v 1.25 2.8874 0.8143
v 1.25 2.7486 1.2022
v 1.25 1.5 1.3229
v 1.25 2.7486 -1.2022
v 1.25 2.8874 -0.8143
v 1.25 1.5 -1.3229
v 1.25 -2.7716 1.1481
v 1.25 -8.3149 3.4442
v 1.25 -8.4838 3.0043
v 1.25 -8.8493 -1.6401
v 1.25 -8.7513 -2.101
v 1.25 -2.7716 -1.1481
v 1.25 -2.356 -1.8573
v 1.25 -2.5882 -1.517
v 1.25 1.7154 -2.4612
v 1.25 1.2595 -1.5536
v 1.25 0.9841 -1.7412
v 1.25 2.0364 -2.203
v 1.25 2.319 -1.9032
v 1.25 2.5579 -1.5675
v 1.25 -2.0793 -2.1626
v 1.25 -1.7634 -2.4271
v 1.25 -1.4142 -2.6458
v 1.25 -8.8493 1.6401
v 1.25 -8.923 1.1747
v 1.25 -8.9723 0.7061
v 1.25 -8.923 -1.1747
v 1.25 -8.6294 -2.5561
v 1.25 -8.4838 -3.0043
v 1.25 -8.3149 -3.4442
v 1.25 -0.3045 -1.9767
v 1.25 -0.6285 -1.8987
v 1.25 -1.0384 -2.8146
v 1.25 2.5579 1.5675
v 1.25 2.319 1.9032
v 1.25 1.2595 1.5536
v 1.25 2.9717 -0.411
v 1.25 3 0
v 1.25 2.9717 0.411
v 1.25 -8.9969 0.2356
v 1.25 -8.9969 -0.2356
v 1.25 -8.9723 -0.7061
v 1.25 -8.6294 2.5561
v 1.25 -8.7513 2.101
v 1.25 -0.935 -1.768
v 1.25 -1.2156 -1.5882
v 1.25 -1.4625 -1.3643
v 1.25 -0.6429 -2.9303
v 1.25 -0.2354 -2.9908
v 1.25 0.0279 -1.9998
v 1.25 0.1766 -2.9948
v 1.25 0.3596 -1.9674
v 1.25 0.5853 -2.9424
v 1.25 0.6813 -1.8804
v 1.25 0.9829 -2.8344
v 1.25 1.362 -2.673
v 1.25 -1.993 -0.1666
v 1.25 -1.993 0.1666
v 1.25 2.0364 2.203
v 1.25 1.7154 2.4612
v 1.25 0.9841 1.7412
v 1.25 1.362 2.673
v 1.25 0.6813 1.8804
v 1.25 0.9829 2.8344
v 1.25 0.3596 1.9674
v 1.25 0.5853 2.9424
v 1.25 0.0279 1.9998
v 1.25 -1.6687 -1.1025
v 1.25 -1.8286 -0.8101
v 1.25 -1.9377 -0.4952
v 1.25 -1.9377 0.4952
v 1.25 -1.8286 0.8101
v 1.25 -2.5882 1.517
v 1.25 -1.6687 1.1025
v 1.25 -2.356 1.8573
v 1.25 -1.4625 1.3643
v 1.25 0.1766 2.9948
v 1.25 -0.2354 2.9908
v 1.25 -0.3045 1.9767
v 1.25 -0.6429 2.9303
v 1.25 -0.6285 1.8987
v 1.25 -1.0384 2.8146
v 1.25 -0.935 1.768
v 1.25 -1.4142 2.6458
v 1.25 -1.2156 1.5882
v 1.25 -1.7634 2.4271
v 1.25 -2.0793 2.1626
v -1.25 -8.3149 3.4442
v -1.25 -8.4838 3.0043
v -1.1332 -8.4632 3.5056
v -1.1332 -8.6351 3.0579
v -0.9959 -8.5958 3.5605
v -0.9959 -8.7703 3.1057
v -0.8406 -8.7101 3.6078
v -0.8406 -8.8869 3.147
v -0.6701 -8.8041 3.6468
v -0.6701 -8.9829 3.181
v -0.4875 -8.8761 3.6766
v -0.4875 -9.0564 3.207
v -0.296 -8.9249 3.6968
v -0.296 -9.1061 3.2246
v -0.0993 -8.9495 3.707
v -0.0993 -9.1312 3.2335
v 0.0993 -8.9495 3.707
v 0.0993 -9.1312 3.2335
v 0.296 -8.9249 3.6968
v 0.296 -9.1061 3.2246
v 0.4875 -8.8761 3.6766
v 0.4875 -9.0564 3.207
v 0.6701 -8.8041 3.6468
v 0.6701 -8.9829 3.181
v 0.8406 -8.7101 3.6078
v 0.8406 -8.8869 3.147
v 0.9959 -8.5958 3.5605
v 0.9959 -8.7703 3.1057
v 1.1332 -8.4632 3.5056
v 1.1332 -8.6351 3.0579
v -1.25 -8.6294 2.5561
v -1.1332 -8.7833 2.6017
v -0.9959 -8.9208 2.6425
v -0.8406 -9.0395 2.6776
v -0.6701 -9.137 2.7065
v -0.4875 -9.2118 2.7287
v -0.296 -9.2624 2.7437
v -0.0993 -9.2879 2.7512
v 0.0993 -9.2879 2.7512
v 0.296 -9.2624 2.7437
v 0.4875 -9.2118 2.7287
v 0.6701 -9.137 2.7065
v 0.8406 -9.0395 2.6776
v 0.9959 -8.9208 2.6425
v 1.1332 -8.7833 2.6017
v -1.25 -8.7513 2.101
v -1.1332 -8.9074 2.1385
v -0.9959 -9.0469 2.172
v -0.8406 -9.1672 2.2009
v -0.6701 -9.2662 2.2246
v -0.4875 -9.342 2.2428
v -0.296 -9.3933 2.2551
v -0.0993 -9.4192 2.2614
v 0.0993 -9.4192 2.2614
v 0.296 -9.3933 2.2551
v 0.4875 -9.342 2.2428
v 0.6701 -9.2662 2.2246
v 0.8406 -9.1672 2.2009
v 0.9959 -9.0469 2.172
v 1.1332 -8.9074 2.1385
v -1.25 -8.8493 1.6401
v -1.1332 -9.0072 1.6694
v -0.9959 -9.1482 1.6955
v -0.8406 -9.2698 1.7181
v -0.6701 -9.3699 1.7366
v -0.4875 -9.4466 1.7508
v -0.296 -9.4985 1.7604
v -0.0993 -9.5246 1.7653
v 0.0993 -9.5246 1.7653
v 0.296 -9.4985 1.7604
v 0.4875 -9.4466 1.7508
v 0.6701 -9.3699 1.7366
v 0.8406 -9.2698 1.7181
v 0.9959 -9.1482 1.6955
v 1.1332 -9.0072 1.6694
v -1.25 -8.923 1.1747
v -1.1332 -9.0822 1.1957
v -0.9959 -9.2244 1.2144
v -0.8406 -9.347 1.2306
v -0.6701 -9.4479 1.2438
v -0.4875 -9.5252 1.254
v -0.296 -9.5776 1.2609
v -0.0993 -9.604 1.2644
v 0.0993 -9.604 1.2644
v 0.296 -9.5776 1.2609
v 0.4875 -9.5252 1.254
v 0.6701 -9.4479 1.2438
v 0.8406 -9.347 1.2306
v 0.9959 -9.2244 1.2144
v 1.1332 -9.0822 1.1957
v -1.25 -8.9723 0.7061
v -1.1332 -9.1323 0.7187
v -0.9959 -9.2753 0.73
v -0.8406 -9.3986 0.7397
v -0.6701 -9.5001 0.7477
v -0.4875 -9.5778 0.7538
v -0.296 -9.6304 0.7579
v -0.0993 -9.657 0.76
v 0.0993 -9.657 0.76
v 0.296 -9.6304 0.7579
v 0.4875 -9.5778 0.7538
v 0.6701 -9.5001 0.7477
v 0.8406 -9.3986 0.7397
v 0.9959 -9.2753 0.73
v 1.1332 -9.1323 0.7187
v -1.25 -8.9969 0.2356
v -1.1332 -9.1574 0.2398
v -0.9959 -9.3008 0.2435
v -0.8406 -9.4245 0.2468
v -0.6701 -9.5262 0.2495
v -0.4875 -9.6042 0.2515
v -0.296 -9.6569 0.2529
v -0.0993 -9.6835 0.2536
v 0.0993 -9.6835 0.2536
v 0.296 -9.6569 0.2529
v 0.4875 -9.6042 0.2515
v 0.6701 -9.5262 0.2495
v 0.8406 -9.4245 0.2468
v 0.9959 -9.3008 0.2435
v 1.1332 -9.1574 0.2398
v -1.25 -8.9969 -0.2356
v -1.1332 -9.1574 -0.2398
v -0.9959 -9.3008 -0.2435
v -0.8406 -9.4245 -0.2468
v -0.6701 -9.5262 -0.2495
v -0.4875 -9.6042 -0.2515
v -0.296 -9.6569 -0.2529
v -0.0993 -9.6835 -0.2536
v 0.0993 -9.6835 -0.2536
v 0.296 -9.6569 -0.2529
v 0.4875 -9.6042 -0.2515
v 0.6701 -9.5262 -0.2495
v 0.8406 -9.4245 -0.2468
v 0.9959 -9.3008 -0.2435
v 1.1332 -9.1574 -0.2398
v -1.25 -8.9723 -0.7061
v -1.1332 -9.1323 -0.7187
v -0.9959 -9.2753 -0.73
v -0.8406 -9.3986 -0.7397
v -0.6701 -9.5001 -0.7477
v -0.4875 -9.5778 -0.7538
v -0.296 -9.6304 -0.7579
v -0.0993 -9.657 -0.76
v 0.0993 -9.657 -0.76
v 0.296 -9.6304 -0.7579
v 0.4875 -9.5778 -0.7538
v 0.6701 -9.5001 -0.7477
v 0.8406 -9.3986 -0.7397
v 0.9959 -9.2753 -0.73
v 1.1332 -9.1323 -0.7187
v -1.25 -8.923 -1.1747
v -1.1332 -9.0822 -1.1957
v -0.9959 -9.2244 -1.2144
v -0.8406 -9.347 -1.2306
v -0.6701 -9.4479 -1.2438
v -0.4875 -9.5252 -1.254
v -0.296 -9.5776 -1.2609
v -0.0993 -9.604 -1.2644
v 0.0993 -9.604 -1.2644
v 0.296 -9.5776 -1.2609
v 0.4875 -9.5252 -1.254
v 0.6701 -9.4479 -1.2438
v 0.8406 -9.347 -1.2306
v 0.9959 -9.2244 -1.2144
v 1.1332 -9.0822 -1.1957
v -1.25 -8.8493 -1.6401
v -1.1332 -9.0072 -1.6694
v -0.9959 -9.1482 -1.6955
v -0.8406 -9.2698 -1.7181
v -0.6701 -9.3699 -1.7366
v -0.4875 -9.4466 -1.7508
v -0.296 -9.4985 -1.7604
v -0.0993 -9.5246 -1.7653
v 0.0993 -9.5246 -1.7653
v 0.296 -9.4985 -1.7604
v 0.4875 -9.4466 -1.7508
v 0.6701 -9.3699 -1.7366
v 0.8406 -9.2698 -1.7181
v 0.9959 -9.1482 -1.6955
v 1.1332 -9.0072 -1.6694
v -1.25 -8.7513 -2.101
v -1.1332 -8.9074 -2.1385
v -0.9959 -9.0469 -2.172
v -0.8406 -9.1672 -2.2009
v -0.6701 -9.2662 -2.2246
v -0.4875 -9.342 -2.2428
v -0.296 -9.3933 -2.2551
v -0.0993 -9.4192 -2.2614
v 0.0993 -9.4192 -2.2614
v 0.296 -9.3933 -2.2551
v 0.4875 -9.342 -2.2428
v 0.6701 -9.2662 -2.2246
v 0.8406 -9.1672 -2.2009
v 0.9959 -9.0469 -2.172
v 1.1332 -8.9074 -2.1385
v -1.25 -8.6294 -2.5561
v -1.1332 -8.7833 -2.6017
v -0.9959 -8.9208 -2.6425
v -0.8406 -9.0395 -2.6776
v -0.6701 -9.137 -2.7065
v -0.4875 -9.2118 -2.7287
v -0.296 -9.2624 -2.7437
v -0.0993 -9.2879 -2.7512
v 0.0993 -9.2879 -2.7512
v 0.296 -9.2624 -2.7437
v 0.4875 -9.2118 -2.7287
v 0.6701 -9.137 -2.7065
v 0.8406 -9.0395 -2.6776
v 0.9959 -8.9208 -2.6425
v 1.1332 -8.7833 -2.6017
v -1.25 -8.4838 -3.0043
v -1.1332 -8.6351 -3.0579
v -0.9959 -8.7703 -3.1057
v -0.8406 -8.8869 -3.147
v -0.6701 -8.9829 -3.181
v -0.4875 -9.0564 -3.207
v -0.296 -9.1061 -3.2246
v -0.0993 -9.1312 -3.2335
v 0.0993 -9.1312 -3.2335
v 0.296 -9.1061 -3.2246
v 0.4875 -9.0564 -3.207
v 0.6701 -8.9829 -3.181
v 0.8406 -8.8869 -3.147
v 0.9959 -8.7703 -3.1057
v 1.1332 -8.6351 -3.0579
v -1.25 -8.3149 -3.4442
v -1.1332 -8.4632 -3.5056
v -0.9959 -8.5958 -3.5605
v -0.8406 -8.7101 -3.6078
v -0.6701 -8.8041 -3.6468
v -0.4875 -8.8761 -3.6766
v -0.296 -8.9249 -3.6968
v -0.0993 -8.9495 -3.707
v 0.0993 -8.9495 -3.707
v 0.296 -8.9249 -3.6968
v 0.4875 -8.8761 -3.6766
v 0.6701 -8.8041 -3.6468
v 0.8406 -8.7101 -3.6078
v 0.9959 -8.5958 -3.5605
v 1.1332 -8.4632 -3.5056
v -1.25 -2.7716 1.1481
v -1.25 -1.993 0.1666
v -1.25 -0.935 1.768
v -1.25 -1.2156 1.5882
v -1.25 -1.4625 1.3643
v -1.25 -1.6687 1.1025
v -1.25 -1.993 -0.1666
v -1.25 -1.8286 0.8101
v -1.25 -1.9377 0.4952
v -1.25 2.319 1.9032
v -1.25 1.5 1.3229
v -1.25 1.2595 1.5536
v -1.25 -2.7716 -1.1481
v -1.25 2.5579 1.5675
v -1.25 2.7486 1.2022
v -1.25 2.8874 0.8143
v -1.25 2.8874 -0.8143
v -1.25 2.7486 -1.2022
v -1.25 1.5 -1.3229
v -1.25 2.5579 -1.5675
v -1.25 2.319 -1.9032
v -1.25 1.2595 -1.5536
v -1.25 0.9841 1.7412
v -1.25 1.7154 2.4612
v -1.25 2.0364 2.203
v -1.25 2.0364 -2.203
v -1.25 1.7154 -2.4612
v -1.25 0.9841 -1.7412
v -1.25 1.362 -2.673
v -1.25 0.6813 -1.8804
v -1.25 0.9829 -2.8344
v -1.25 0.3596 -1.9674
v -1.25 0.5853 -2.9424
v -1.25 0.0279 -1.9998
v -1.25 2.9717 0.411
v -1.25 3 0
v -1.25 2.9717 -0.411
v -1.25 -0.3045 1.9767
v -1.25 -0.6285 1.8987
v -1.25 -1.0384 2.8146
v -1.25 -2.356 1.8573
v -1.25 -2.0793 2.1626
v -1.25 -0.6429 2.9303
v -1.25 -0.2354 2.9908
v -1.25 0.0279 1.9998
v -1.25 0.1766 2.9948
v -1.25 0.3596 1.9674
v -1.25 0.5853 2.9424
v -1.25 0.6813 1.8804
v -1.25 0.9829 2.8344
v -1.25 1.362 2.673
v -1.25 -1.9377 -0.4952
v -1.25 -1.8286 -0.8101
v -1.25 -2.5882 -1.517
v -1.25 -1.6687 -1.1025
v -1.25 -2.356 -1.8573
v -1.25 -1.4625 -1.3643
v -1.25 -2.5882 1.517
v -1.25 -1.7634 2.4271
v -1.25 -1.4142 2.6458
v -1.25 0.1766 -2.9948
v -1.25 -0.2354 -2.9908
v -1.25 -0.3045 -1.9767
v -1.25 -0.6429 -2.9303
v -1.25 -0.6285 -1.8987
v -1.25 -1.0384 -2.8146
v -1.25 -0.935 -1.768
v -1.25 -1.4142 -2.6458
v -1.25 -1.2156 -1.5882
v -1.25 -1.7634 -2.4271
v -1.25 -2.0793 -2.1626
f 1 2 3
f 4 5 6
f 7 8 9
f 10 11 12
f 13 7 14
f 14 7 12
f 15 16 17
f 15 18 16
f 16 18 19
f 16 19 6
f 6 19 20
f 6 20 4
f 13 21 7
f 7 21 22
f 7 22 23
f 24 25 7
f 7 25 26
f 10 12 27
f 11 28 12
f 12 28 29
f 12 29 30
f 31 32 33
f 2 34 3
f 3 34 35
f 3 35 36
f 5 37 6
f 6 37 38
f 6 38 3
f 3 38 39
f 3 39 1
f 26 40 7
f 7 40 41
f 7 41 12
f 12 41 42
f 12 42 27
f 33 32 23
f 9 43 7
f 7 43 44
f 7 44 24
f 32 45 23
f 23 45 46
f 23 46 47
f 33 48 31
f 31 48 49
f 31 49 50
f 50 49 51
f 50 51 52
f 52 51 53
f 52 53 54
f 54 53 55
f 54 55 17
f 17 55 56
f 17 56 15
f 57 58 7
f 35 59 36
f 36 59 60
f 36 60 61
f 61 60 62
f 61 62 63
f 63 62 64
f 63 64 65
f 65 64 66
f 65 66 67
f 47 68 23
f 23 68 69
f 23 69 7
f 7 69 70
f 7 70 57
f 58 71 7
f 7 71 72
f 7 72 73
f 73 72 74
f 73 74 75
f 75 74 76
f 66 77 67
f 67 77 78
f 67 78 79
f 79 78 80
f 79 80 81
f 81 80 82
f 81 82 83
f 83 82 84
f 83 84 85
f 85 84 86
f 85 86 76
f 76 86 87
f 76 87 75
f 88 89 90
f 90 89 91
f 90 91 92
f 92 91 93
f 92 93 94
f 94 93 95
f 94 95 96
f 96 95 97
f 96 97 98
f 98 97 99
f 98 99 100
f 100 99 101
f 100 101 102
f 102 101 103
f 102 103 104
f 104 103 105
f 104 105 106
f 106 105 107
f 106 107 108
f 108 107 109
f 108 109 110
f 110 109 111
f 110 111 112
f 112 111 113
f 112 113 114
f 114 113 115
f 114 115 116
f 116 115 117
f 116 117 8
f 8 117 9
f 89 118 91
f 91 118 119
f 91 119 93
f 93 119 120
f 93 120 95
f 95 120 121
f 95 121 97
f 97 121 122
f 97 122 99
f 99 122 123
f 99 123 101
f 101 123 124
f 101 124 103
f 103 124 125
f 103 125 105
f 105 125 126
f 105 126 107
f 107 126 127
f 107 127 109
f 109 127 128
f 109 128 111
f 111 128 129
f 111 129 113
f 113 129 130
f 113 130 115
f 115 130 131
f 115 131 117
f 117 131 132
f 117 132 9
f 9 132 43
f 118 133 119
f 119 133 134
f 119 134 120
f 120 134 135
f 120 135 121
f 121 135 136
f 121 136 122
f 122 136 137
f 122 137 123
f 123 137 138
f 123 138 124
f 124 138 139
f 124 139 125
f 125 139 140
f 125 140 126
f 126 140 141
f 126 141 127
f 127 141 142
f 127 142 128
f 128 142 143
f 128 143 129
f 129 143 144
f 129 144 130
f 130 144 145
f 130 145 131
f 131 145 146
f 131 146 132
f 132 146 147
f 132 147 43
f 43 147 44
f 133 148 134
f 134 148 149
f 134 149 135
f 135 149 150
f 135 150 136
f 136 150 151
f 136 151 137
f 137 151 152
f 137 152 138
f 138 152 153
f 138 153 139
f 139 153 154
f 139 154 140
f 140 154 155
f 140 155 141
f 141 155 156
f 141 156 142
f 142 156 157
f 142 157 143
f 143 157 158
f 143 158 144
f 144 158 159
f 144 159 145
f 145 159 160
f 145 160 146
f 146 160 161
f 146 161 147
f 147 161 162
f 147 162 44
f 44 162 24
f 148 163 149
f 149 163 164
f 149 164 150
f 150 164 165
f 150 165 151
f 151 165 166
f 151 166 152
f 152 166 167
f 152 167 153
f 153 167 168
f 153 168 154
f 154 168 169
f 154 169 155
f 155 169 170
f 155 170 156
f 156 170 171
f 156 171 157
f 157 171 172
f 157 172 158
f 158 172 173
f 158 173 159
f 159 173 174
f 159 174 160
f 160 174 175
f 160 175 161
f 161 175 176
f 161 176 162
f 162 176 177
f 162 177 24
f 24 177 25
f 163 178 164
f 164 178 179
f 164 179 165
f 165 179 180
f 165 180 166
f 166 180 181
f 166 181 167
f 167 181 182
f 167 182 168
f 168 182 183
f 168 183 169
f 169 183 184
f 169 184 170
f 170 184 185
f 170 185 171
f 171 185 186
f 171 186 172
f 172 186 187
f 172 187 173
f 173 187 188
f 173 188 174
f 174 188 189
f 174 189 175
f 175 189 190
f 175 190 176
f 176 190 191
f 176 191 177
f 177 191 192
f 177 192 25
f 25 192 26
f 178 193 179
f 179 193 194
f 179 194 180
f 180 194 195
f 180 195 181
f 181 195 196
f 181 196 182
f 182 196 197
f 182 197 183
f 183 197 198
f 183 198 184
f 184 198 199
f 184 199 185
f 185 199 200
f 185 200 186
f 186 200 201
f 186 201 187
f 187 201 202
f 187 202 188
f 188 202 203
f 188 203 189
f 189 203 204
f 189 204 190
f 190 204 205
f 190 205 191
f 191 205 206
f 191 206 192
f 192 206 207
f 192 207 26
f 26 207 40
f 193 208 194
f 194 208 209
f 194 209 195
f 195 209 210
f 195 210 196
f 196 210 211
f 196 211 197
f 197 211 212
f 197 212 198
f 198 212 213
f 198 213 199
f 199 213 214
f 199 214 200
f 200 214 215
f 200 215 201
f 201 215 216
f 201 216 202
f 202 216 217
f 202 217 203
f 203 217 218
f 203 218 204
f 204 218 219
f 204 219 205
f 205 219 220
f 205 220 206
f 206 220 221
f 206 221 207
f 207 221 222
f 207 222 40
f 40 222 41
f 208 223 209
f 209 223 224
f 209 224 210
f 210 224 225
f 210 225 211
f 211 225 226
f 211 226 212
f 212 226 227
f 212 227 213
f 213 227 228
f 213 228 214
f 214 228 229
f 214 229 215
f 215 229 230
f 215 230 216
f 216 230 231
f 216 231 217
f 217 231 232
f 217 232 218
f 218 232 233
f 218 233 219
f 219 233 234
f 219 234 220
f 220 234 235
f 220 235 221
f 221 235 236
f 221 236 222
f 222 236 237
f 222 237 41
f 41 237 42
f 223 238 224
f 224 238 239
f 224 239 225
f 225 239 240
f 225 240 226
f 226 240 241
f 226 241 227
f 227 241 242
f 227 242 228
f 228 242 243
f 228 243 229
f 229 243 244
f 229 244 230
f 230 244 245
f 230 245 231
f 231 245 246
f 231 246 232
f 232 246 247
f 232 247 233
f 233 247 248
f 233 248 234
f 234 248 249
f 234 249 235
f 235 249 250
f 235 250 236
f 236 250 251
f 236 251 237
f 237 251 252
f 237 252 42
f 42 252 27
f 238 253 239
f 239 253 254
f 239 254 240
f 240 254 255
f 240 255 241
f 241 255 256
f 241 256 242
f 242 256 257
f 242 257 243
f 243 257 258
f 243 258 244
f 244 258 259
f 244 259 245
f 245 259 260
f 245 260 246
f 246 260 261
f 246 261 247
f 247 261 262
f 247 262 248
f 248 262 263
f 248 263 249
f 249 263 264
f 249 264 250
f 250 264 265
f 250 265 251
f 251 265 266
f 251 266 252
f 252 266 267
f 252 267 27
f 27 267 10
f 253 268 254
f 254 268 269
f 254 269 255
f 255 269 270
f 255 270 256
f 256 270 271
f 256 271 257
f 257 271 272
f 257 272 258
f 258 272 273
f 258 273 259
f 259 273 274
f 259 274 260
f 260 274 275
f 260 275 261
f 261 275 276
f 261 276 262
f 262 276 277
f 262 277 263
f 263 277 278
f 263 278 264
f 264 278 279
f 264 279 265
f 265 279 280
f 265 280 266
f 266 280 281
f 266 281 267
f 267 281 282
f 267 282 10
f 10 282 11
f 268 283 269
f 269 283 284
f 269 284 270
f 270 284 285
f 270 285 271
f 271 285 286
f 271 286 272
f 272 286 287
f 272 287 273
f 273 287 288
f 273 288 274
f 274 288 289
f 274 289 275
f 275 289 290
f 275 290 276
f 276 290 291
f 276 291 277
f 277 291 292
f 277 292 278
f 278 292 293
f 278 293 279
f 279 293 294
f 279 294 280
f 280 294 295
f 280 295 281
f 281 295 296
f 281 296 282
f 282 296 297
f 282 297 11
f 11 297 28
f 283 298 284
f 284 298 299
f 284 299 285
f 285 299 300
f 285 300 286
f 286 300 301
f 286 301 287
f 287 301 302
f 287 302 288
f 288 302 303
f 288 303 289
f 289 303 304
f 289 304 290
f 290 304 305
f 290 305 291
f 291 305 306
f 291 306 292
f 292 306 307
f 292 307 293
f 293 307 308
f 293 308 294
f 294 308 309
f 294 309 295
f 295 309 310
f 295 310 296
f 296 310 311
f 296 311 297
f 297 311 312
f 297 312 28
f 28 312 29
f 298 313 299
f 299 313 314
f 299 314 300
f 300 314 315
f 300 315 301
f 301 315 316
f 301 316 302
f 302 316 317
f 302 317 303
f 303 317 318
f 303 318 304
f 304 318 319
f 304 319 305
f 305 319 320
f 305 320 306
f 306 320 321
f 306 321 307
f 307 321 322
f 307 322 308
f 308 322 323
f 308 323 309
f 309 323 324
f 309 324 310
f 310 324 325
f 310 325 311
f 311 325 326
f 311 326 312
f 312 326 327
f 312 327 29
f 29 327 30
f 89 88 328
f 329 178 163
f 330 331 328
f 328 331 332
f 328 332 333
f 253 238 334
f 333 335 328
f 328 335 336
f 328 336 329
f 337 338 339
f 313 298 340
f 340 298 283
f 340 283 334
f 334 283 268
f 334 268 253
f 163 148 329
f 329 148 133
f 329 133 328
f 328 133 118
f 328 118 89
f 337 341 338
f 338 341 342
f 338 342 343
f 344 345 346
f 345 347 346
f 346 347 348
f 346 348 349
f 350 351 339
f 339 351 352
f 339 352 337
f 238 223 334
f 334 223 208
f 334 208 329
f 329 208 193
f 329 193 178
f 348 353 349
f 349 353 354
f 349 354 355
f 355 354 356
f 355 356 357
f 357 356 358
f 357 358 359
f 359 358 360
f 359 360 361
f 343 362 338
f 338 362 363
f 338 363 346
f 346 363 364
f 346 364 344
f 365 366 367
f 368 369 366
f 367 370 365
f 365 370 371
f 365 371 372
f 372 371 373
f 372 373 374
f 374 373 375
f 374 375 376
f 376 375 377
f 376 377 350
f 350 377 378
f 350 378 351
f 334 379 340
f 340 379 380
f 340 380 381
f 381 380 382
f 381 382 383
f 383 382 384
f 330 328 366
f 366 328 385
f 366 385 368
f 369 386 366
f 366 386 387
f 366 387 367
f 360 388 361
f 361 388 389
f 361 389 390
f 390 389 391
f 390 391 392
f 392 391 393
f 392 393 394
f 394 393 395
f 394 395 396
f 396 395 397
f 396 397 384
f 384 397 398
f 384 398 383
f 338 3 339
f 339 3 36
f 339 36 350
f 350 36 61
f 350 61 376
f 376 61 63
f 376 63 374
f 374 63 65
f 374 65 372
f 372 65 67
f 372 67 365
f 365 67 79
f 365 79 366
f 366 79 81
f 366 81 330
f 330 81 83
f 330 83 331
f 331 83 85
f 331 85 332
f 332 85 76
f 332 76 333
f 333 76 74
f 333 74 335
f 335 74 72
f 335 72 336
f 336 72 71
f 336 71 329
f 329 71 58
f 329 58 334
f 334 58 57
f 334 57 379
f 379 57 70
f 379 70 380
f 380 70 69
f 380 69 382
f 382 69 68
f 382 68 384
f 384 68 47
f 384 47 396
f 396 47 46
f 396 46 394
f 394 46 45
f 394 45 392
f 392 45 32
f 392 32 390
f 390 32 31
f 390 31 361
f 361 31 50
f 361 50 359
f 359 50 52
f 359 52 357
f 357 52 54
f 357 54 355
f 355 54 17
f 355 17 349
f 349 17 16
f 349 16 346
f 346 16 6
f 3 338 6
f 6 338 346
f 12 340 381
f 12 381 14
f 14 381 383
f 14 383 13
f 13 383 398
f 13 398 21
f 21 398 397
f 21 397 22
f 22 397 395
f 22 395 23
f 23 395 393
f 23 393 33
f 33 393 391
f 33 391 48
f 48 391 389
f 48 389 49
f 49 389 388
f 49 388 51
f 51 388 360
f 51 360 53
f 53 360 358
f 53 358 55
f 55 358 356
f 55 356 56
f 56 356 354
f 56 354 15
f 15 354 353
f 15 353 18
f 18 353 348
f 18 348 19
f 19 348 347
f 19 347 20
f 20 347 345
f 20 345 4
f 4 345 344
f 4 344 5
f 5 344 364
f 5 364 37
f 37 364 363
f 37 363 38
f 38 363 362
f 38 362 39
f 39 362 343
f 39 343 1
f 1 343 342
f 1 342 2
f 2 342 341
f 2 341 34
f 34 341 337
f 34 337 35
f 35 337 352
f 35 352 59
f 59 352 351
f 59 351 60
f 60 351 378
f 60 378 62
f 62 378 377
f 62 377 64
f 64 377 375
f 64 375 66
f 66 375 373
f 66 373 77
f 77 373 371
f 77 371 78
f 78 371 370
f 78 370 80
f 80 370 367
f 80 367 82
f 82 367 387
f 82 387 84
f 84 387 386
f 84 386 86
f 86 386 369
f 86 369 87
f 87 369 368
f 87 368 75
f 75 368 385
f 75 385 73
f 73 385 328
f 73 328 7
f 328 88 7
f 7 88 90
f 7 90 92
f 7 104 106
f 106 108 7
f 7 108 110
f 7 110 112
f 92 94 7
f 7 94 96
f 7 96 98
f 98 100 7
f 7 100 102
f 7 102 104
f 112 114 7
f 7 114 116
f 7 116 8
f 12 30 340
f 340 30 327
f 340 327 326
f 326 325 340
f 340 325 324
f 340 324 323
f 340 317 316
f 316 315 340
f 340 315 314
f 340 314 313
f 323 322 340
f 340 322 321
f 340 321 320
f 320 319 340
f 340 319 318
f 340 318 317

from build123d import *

# Parameters (mm, degrees)
CUT_EXTRUDE1_DEPTH           = 10
CUT_REVOLVE1_ANGLE           = 157.5
CUT_REVOLVE1_OTHER_WAY_ANGLE = 157.5


with BuildPart() as part:
    # Sketch3 → Revolve1 (revolve)
    with BuildSketch(Plane.XY, mode=Mode.PRIVATE) as revolve1_sk:
        with BuildLine():
            Line((1.25, 0), (1.25, 9))
            ThreePointArc((1.25, 9), (0, 9.690197618), (-1.25, 9))
            Line((-1.25, 9), (-1.25, 0))
            Line((-1.25, 0), (1.25, 0))
        make_face()
    revolve(revolve1_sk.sketch.rotate(Axis((-1.25, 0, 0), (1, 0, 0)), 180), axis=Axis((-1.25, 0, 0), (1, 0, 0)))

    # Sketch4 → Cut-Extrude1 (cut)
    # profile 1 of 2: a face of its own
    with BuildSketch(Plane(origin=(1.25, 0, 0), x_dir=(0, 0, -1), z_dir=(1, 0, 0))):
        with BuildLine():
            Line((1.322875656, 1.5), (-1.322875656, 1.5))
            ThreePointArc((-1.322875656, 1.5), (0, -2), (1.322875656, 1.5))
        make_face()
        with BuildLine():
            ThreePointArc((-1.118033989, 1), (0, -1.5), (1.118033989, 1))
            Line((1.118033989, 1), (-1.118033989, 1))
        make_face(mode=Mode.SUBTRACT)
    # profile 2 of 2: a face of its own
    with BuildSketch(Plane(origin=(1.25, 0, 0), x_dir=(0, 0, -1), z_dir=(1, 0, 0))):
        with BuildLine():
            Line((1.118033989, 1), (-1.118033989, 1))
            ThreePointArc((-1.118033989, 1), (0, -1.5), (1.118033989, 1))
        make_face()
    extrude(amount=-CUT_EXTRUDE1_DEPTH, mode=Mode.SUBTRACT)

    # Sketch7 → Cut-Revolve1 (revolve, cut)
    with BuildSketch(Plane.XY):
        with BuildLine():
            ThreePointArc((-1.25, 9), (0, 9.690197618), (1.25, 9))
            Line((1.25, 9), (1.25, 3))
            Line((1.25, 3), (-1.25, 3))
            Line((-1.25, 3), (-1.25, 9))
        make_face()
    revolve(axis=Axis((-1.25, 0, 0), (1, 0, 0)), revolution_arc=CUT_REVOLVE1_ANGLE, mode=Mode.SUBTRACT)

    # Sketch7 → Cut-Revolve1 other way (revolve, cut)
    with BuildSketch(Plane.XY):
        with BuildLine():
            ThreePointArc((-1.25, 9), (0, 9.690197618), (1.25, 9))
            Line((1.25, 9), (1.25, 3))
            Line((1.25, 3), (-1.25, 3))
            Line((-1.25, 3), (-1.25, 9))
        make_face()
    revolve(axis=Axis((-1.25, 0, 0), (-1, 0, 0)), revolution_arc=CUT_REVOLVE1_OTHER_WAY_ANGLE, mode=Mode.SUBTRACT)


solid = part.part
